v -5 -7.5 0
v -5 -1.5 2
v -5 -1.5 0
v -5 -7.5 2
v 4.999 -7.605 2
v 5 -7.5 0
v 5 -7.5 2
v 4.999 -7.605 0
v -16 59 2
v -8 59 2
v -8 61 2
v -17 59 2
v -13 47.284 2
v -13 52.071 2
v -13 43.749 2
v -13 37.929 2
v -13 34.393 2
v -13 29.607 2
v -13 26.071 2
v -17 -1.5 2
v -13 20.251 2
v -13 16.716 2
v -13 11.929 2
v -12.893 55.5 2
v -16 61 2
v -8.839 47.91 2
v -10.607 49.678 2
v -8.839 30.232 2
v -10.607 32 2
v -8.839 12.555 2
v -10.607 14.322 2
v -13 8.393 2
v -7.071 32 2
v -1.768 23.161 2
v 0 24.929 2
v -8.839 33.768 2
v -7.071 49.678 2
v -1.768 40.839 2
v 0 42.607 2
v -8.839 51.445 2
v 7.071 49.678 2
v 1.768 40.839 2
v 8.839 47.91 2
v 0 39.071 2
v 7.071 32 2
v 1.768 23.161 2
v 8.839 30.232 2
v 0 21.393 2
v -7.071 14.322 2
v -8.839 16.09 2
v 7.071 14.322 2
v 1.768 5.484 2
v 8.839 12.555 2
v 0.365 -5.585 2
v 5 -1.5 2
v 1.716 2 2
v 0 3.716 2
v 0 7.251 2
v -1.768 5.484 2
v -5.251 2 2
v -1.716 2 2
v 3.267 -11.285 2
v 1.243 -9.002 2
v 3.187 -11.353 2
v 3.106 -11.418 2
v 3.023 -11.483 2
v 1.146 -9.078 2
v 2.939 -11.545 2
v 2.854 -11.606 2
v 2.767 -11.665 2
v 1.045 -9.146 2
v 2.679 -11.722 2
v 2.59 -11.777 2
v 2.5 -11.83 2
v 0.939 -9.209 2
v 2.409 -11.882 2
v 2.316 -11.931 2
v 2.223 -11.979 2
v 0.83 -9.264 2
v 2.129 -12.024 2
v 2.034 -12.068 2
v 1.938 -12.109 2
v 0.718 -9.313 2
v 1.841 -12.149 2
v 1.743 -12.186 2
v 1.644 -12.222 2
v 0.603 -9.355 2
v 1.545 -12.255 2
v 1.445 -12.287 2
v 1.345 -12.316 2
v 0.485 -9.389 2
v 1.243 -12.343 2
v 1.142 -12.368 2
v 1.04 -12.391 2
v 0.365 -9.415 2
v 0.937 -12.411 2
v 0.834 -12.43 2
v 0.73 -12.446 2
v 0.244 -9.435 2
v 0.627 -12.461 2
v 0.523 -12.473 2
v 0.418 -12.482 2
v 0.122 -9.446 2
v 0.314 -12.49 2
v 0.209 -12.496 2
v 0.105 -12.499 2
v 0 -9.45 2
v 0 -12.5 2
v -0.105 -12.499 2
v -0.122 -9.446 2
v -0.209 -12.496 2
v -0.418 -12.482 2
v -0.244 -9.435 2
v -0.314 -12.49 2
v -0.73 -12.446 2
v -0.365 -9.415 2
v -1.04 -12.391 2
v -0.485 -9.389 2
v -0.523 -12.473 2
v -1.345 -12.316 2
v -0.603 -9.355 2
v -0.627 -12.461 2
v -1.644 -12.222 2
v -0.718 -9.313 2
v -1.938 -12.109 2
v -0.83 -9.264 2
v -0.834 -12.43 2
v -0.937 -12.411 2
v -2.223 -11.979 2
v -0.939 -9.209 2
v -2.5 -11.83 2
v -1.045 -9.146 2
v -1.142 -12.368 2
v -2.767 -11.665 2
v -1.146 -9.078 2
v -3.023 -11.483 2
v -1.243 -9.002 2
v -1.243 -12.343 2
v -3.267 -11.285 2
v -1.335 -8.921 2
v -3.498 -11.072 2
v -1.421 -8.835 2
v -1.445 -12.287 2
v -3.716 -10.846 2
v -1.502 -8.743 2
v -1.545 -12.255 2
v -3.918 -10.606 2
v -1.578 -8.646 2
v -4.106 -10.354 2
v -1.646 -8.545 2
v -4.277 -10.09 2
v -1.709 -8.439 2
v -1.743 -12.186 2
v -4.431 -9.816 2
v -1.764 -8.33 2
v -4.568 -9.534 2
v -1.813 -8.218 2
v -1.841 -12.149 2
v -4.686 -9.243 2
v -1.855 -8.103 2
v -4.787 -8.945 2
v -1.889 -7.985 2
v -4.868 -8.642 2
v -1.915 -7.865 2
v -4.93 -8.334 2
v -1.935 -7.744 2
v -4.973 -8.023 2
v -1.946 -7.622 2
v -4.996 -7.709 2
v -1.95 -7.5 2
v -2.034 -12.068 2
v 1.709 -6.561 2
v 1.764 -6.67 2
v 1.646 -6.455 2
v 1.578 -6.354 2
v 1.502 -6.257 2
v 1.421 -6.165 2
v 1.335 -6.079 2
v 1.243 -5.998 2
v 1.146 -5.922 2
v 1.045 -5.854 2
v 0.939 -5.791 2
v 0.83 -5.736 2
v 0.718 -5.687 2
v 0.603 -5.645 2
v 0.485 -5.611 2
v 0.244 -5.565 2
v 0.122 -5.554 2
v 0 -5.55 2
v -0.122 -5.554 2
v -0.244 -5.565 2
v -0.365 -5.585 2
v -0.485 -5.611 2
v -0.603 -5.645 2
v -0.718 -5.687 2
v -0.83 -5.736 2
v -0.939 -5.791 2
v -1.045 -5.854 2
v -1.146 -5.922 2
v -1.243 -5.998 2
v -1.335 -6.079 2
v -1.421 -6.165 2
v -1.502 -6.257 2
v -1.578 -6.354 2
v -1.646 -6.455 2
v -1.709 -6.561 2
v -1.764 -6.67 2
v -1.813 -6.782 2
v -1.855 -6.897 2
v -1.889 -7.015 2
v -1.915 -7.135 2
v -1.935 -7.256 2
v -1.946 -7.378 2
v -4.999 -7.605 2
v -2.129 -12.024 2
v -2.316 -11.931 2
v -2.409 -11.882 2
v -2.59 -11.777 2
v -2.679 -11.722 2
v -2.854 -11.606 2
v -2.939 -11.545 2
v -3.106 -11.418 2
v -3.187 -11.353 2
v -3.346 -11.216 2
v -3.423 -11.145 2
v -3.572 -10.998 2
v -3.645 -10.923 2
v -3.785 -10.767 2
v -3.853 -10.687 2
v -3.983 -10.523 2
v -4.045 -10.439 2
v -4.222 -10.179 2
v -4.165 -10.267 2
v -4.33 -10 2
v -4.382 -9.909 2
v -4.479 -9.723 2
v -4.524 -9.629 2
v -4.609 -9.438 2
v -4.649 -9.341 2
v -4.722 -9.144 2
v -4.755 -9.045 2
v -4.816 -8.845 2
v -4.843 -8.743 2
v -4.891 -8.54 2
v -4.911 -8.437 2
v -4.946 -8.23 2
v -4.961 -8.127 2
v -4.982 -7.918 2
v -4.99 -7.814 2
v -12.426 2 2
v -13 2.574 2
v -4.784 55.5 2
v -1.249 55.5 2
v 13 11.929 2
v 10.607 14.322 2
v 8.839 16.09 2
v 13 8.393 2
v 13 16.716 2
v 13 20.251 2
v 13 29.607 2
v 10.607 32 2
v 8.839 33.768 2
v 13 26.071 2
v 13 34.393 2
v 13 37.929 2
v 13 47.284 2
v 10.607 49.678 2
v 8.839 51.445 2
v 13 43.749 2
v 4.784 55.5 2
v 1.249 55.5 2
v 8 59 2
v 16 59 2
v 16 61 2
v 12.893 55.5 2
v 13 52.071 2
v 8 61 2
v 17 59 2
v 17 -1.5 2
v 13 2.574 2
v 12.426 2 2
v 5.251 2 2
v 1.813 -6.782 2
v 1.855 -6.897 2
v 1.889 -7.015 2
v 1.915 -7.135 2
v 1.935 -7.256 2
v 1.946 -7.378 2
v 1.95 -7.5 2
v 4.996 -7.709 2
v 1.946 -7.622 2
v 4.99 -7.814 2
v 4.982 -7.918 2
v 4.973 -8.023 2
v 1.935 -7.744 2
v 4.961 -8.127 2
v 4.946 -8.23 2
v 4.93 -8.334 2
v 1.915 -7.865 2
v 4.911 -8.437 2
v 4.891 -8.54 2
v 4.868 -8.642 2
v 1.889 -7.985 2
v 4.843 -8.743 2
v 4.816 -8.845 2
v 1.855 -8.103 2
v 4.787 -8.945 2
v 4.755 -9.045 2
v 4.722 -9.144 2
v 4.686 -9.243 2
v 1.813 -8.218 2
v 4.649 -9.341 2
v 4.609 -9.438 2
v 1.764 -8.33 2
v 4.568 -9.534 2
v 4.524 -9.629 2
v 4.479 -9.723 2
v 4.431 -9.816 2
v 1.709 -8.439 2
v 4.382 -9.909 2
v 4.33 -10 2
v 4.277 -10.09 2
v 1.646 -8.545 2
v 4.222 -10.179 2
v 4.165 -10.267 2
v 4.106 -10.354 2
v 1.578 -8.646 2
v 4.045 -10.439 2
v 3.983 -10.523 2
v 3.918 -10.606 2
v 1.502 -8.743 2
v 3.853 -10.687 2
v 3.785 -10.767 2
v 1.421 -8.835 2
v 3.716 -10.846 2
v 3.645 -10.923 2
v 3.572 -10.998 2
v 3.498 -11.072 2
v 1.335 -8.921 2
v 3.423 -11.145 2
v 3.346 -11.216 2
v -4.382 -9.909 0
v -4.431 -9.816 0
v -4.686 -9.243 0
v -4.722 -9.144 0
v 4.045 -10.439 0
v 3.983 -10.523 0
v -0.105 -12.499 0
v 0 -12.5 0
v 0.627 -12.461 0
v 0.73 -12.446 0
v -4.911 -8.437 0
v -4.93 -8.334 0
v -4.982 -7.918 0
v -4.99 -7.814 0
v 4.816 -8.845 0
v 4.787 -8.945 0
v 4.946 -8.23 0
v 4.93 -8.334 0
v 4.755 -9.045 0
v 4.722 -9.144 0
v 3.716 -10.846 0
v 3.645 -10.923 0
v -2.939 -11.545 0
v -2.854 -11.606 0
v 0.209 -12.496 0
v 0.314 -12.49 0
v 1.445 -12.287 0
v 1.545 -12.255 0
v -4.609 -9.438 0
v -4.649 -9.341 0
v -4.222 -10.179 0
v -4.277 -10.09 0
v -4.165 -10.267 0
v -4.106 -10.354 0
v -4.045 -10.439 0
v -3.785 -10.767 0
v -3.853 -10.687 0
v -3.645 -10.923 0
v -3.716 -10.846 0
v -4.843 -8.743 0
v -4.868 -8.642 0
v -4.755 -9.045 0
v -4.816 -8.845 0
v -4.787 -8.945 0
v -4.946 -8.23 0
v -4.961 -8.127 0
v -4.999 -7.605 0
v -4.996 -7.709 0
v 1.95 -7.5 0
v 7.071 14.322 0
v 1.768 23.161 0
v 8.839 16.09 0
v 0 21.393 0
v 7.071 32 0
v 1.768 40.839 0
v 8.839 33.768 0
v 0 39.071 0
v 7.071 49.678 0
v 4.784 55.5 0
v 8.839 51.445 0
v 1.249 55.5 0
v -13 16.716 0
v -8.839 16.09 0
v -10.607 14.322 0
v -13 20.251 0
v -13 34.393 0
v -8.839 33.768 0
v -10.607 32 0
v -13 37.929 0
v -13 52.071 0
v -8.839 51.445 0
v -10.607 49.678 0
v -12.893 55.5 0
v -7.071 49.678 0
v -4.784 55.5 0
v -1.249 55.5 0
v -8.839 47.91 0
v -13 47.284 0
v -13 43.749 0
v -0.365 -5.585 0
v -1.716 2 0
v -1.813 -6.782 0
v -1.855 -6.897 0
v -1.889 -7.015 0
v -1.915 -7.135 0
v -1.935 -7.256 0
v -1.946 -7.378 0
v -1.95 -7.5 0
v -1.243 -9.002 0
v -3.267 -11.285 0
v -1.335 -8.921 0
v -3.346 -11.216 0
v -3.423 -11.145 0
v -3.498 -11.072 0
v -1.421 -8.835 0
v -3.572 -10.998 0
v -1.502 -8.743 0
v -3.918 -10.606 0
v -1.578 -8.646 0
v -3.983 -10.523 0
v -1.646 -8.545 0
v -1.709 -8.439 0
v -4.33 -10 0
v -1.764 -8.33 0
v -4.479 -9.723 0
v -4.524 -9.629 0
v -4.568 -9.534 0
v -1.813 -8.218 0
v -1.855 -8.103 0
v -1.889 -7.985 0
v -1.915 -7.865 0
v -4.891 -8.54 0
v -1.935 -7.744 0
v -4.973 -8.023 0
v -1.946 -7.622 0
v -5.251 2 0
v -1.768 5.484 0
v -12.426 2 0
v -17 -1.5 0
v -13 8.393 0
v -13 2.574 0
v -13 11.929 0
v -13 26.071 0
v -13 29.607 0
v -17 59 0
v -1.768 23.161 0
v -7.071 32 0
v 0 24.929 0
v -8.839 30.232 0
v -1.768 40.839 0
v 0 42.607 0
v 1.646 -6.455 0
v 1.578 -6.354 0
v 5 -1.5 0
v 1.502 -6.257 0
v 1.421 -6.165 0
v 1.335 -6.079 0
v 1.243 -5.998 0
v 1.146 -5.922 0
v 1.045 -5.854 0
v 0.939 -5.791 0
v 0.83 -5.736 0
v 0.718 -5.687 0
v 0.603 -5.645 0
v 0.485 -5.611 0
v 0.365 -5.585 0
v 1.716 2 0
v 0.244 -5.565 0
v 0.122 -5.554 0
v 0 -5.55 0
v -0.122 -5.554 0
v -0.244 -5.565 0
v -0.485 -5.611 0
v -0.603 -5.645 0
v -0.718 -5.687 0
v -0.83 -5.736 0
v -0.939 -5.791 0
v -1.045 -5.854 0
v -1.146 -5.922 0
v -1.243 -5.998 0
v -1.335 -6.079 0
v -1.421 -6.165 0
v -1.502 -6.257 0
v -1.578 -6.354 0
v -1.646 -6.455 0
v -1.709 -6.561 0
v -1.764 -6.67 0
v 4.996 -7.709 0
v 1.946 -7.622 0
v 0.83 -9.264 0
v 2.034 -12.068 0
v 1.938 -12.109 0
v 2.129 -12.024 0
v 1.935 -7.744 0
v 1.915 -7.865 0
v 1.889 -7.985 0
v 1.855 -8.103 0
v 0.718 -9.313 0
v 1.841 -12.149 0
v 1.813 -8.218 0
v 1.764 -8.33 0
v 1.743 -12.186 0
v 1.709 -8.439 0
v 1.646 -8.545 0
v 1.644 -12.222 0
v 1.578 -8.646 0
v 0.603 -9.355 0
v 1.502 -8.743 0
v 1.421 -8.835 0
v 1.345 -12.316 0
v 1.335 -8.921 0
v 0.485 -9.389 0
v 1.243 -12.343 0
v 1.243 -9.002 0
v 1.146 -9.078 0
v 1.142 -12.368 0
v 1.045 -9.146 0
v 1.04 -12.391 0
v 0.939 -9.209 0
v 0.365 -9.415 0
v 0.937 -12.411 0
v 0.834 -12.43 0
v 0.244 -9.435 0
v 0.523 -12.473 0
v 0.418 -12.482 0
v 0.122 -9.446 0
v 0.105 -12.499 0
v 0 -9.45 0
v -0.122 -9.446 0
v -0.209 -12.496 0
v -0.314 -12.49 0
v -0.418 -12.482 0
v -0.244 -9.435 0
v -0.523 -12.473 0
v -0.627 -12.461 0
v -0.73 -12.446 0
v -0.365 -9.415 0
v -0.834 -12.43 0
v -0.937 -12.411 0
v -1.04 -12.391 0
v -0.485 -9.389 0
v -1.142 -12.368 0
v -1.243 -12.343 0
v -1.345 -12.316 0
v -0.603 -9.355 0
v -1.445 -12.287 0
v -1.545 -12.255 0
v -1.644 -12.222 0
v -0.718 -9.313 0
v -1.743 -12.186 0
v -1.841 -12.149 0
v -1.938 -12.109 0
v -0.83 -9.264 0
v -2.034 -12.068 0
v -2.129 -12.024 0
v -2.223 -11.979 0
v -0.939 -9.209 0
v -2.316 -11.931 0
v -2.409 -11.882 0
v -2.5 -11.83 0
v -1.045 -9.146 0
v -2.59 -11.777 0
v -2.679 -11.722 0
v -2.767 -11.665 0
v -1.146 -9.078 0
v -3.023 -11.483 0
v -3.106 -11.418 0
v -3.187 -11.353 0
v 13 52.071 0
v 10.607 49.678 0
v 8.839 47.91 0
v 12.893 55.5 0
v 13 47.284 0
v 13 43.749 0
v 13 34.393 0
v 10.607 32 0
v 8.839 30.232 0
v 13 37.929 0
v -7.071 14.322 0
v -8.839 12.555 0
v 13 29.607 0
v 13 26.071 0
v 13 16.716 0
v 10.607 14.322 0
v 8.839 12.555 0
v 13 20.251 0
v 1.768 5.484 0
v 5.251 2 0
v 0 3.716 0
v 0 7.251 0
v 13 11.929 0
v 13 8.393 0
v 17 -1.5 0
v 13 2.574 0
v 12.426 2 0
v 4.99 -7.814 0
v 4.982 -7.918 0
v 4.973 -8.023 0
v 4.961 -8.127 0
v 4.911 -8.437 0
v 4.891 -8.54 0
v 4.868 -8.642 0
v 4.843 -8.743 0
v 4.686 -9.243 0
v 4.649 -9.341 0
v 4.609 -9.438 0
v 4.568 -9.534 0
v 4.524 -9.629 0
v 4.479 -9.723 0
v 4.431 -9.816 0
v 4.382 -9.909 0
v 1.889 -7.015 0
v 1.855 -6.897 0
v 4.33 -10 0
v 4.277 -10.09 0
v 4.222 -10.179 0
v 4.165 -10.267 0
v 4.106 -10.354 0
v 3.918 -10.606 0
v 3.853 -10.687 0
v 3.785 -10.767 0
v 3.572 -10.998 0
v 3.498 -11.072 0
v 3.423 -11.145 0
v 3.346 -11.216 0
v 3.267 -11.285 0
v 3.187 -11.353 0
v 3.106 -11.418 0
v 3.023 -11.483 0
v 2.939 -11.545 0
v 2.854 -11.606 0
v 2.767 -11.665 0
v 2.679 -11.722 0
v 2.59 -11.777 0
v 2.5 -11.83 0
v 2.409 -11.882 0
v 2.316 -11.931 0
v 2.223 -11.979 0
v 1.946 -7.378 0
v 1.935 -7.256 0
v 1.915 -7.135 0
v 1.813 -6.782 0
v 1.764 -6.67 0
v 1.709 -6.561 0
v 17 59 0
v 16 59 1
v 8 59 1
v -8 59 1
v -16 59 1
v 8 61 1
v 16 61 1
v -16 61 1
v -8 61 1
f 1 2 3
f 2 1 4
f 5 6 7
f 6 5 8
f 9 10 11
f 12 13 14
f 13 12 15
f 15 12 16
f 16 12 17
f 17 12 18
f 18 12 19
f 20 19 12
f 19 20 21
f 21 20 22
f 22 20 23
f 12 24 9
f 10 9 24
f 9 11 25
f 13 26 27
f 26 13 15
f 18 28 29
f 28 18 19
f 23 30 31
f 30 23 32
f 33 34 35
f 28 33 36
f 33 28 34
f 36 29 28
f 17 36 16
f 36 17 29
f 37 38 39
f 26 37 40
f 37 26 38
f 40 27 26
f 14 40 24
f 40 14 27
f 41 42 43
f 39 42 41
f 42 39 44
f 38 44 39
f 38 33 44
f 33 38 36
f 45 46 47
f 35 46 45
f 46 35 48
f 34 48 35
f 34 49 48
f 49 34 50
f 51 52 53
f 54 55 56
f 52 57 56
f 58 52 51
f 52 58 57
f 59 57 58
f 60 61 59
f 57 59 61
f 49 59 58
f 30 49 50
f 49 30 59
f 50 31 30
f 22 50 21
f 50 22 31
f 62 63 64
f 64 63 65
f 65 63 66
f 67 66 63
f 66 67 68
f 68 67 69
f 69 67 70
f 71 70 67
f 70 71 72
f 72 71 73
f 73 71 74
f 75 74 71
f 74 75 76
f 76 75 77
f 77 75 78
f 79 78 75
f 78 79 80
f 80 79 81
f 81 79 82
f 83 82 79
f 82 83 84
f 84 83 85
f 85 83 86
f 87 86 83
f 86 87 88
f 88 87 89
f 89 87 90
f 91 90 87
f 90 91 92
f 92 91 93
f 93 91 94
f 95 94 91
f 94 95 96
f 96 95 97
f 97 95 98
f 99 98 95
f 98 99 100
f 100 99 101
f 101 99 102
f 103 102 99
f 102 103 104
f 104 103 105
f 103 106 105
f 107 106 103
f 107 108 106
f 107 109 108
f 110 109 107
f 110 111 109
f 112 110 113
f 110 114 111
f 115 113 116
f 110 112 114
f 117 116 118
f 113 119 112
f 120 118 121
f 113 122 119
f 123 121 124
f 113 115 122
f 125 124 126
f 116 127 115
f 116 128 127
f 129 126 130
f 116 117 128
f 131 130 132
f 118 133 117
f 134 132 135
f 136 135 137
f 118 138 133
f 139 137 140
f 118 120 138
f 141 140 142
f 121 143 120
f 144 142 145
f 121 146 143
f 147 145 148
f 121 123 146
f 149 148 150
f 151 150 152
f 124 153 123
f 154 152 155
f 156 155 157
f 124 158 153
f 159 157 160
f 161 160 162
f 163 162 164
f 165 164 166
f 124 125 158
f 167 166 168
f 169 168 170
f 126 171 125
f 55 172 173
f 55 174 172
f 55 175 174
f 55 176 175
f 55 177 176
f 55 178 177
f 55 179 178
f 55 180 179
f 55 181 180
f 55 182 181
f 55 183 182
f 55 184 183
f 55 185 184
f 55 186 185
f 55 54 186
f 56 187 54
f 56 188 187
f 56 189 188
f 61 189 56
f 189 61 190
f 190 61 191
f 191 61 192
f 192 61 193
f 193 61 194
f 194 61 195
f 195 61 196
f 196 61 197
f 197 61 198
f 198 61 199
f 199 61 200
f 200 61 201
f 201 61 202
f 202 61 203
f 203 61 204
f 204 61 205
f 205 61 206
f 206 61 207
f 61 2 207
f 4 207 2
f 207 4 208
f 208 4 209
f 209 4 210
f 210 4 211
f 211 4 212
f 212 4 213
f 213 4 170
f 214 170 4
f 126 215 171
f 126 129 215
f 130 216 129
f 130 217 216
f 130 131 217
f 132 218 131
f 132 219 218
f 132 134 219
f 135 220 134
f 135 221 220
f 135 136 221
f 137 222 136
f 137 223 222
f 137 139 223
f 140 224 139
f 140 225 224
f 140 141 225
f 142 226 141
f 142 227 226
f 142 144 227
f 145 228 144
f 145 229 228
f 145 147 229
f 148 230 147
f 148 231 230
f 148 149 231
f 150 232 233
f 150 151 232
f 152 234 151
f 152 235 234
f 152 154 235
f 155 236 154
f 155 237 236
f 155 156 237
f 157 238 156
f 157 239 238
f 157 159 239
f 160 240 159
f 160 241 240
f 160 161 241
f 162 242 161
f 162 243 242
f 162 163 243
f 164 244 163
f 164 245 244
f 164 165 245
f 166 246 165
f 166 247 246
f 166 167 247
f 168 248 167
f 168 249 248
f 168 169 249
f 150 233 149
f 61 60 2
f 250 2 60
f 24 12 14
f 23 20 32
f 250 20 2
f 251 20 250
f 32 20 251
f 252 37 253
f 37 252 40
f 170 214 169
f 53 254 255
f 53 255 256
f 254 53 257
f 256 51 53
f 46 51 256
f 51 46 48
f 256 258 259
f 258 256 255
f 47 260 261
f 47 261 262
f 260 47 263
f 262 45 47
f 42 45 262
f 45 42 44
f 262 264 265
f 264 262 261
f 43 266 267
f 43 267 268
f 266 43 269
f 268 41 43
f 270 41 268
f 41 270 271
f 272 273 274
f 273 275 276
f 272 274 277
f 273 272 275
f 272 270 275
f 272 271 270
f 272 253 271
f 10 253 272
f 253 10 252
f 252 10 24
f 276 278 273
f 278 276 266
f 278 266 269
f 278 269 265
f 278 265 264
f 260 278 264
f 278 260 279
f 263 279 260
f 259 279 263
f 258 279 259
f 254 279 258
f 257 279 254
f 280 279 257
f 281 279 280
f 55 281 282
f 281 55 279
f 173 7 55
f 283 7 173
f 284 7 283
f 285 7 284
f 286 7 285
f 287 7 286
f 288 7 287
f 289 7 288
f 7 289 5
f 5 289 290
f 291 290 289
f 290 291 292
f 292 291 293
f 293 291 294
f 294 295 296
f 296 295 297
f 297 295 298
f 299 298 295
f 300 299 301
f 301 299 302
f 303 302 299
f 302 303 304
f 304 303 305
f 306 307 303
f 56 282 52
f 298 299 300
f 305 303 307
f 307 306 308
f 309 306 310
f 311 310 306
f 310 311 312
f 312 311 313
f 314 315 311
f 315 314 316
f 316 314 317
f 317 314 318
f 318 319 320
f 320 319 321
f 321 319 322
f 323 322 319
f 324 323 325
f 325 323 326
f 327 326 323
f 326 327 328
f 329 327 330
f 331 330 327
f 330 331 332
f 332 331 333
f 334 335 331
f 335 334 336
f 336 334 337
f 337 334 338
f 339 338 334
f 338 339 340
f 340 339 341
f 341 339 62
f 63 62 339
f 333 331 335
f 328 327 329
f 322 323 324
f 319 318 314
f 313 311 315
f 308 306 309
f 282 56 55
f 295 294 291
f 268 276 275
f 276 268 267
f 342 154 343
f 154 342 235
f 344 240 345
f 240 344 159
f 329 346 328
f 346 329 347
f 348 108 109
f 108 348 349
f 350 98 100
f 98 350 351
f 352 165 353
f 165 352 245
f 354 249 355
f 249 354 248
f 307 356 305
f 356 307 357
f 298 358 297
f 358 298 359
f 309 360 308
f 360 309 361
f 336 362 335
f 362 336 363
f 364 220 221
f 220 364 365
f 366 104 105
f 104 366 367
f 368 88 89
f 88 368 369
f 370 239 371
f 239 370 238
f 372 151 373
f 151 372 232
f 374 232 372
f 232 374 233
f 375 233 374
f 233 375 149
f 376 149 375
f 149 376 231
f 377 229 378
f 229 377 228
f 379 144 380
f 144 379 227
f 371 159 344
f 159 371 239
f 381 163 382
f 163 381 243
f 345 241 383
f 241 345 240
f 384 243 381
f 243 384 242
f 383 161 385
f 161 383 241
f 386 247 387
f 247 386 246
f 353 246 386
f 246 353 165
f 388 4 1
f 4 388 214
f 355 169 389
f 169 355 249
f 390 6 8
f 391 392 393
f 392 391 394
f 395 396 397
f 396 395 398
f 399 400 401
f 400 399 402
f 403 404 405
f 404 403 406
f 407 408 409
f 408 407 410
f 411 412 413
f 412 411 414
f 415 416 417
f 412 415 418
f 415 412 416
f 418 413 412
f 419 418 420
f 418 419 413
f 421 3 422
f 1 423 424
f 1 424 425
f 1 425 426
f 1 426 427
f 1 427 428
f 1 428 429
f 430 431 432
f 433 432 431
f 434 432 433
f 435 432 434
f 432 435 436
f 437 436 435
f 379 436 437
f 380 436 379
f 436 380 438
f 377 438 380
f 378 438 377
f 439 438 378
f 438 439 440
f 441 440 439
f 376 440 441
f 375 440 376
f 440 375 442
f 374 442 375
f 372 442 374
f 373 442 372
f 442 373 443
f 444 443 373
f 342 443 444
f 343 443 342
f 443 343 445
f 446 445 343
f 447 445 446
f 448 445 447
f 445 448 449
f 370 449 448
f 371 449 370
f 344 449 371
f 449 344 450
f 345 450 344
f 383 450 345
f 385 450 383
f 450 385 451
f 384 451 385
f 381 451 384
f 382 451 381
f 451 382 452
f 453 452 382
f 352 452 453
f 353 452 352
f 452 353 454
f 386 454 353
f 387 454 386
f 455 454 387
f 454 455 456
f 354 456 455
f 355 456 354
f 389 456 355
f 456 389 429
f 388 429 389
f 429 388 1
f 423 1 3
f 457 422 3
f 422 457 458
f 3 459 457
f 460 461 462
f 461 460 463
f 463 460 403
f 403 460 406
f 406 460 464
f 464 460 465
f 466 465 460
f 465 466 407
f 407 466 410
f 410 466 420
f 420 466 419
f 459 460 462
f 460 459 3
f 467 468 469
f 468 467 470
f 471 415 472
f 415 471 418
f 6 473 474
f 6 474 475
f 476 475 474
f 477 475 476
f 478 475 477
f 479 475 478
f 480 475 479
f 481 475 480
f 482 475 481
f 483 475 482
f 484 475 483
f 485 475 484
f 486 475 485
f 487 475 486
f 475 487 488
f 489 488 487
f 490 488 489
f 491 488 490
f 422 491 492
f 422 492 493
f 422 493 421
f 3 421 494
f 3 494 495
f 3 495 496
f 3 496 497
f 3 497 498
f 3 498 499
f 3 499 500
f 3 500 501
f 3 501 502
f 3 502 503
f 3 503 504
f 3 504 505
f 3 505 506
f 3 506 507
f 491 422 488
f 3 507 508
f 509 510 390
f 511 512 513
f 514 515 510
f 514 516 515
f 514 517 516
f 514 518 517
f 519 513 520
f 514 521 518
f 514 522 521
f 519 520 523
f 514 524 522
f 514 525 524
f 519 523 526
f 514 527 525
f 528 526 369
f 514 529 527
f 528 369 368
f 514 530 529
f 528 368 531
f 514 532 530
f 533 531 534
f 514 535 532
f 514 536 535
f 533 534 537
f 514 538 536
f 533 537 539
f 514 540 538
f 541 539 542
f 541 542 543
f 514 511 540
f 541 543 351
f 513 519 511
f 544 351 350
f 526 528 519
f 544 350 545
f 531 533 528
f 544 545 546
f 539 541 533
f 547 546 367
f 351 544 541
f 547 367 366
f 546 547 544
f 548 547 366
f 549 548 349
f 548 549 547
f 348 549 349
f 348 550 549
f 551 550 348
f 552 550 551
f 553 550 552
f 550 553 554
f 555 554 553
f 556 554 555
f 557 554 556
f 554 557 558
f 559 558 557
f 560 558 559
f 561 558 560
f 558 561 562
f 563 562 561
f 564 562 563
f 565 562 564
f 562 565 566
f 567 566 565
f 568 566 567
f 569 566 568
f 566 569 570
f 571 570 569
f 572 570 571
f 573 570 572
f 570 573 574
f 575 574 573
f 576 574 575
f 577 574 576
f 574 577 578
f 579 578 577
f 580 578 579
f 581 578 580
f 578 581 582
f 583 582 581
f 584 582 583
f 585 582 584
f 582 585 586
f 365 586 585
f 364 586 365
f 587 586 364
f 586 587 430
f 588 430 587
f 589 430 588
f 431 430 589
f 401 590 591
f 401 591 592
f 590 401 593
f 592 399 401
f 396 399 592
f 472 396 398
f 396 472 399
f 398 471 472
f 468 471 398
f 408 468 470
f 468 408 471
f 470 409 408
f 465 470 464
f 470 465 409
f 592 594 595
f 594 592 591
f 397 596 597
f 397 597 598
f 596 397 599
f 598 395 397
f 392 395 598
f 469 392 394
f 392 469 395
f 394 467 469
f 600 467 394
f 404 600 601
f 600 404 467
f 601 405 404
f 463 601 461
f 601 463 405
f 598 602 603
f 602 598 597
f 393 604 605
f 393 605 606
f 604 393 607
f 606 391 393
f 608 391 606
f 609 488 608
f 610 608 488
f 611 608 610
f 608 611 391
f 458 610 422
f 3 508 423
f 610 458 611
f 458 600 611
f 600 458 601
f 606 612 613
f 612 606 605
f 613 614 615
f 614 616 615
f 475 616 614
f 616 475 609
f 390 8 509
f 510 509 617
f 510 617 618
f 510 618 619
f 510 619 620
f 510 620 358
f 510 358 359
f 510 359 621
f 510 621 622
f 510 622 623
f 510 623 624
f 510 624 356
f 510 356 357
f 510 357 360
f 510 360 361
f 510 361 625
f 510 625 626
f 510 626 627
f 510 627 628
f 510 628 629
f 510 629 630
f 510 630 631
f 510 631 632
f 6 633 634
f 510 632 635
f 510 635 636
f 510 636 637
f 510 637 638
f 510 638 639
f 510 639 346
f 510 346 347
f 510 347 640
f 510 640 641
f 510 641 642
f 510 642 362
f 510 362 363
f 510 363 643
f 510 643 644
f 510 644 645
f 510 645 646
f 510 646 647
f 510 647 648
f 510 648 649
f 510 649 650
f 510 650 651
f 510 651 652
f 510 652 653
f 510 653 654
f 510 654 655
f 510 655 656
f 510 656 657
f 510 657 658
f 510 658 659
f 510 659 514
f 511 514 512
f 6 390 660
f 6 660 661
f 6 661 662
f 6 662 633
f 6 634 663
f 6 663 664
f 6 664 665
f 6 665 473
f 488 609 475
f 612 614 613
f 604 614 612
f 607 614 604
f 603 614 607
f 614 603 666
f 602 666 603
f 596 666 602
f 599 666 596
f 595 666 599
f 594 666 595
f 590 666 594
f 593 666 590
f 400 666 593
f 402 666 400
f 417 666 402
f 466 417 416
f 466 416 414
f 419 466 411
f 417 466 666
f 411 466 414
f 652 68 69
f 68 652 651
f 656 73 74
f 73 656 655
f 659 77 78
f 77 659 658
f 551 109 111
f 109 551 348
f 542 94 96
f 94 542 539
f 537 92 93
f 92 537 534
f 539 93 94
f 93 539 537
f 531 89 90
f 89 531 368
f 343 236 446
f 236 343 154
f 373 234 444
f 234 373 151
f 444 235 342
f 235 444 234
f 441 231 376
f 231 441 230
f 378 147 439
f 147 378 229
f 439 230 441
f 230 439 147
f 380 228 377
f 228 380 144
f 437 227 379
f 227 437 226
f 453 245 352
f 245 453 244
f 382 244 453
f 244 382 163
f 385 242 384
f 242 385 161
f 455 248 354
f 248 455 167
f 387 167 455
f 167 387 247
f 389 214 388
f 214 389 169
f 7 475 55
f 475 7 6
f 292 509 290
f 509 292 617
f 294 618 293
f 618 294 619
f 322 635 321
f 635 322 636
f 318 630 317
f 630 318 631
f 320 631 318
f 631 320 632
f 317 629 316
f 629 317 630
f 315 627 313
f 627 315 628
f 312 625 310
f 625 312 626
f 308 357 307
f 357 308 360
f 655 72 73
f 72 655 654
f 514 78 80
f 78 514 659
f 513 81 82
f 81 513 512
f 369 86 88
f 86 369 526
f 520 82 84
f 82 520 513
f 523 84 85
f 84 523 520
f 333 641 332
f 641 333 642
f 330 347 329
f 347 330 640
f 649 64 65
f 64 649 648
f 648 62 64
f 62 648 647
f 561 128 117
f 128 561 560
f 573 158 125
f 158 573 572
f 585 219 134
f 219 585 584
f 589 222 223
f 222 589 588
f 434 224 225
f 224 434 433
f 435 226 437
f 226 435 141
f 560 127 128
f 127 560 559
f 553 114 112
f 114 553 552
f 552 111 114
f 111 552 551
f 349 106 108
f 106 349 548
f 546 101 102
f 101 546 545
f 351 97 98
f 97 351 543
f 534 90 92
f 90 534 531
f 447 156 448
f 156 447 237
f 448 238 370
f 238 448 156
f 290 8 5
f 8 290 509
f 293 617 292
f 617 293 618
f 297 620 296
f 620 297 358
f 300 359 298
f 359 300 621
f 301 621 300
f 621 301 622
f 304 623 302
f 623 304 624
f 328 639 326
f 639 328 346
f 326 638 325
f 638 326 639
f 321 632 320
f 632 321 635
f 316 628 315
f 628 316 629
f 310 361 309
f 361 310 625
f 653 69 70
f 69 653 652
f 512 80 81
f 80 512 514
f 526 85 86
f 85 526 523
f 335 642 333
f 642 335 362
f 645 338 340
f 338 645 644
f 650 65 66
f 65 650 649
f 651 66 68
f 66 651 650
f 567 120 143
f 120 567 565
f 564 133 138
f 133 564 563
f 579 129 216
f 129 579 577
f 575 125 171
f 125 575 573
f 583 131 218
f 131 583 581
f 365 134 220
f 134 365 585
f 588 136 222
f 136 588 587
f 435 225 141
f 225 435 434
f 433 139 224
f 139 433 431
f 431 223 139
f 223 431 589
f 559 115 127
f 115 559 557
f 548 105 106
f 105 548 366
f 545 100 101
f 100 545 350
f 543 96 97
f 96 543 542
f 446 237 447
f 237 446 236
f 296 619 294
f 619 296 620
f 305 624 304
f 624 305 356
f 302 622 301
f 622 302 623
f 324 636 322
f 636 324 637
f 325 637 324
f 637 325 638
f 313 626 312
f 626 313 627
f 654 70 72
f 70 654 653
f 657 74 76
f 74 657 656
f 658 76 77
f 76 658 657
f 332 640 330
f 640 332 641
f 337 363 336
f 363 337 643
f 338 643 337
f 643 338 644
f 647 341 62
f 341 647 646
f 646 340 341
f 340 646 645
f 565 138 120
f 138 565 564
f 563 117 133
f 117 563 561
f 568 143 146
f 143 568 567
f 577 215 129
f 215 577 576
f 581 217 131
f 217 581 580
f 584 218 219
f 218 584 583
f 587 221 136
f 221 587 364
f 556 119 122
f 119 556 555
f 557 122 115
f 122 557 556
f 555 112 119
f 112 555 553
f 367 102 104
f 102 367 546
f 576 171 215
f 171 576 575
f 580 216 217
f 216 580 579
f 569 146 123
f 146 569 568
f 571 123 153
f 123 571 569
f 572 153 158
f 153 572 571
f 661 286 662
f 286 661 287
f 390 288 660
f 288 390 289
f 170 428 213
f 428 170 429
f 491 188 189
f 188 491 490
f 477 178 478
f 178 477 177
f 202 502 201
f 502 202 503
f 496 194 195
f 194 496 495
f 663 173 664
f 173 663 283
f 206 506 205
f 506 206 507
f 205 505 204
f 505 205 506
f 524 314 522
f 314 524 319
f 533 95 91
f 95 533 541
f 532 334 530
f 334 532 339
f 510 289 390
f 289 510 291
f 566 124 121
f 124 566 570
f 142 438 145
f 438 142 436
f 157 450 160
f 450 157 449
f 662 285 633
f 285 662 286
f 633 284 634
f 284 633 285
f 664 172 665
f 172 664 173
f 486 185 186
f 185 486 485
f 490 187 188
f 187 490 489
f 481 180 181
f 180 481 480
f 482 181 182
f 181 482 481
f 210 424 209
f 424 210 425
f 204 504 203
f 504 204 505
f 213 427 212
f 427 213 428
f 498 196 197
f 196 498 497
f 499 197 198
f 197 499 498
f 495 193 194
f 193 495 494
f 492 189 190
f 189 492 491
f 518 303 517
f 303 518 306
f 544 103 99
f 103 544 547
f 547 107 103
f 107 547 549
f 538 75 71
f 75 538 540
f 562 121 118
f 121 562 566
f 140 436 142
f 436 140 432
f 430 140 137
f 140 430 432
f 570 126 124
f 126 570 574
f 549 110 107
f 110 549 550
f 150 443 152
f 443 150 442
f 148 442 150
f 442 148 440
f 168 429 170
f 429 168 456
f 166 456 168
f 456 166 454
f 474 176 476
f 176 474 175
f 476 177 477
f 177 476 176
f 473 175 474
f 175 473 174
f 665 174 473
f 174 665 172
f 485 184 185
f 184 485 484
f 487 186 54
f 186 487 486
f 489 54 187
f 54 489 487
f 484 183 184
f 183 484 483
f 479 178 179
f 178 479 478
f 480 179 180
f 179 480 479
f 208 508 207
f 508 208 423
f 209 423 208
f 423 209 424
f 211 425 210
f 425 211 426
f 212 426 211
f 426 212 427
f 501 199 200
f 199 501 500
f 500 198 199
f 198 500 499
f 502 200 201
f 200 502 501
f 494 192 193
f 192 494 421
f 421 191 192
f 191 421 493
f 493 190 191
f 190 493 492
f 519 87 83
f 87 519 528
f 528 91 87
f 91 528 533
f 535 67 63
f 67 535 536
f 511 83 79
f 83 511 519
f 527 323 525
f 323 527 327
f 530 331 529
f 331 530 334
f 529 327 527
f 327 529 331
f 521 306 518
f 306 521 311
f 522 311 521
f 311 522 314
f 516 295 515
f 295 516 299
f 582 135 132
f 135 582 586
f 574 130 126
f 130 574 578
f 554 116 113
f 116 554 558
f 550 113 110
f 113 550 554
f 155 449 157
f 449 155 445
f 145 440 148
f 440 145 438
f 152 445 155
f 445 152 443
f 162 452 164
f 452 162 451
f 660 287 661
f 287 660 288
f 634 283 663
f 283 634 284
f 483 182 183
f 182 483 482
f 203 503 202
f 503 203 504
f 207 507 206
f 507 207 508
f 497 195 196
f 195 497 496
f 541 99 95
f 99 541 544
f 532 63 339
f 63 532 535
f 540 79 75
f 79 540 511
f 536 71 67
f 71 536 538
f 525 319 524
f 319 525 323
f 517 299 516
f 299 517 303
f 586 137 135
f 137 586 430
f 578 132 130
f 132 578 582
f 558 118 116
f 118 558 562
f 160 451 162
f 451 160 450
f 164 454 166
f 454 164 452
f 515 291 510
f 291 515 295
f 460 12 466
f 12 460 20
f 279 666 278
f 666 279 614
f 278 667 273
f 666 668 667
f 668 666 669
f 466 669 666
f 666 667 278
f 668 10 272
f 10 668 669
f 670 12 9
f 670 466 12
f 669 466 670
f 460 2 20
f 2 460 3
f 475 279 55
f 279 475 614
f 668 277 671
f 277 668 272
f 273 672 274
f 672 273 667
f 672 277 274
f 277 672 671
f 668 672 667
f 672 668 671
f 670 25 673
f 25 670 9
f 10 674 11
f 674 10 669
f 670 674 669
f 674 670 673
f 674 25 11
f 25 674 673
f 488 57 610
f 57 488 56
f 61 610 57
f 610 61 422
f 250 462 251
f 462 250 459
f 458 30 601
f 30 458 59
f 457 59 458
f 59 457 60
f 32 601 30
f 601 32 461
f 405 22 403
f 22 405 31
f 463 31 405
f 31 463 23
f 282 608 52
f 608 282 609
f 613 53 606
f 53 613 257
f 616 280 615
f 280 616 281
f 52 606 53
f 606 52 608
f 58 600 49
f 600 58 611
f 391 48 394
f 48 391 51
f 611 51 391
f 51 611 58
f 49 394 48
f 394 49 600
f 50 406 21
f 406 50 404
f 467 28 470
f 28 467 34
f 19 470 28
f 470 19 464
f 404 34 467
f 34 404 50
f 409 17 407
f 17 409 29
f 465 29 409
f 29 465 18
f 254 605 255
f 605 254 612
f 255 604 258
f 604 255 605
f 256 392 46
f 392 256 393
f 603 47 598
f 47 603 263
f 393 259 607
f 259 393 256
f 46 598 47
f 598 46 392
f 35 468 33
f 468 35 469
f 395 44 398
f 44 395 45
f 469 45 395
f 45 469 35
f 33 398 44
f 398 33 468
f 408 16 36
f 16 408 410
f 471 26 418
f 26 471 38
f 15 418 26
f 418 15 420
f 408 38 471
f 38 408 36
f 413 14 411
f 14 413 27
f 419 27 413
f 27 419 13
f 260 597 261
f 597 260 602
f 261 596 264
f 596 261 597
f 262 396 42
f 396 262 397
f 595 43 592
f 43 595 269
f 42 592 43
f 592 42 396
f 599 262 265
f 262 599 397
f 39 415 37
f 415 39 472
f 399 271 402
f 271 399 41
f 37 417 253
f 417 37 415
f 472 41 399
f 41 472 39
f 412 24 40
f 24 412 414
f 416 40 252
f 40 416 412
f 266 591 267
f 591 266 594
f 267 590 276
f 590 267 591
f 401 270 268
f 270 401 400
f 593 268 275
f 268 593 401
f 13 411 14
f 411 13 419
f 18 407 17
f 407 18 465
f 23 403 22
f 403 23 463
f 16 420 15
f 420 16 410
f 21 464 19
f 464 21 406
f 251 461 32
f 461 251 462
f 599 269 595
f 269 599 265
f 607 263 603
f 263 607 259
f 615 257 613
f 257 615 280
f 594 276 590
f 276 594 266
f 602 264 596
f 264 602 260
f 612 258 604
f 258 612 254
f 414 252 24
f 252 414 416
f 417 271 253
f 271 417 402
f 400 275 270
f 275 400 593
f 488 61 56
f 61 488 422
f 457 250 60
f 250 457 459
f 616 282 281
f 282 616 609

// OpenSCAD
// file: Holes.scad
$fn = 100;
high_of_hole = 1;

//hole_for_base (high_of_hole);
//hole_for_screw_M2 (high_of_hole);
//hole_for_screw_M2_5 (high_of_hole);
//hole_for_screw_M3 (high_of_hole);
//hole_for_shaft (high_of_hole);

module hole_for_base (high_of_hole) {
    cylinder (h = high_of_hole, d = 8);
}

module hole_for_screw_M1_2 (high_of_hole) {
    cylinder (h = high_of_hole, d = 1.6);
}

module hole_for_screw_M2 (high_of_hole) {
    cylinder (h = high_of_hole, d = 2.8);
}

module hole_for_screw_M2_5 (high_of_hole) {
    cylinder (h = high_of_hole, d = 3.3);
}

module hole_for_screw_M3 (high_of_hole) {
    cylinder (h = high_of_hole, d = 3.9);
}

module hole_for_shaft (high_of_hole) {
    cylinder (h = high_of_hole, d = 4.9);
}
// main file
use <Holes.scad>;

$fn = 300;
batteries_distance = -32;
chassis_diameter = 92.5;
side = 10;
spacing = 2.5;

wicket_for_batteries (batteries_distance, side, spacing);

module wicket_for_batteries (batteries_distance, side, spacing) {
    color ([1, 1, 0, 1]) {
        difference () {
            union () {
                translate ([-17, -1.5, 0]) {
                    cube ([34, 60.5, 2]);
                }
                translate ([8, 58.5, 1]) {
                    cube ([8, 2.5, 1]);
                }
                translate ([-16, 58.5, 1]) {
                    cube ([8, 2.5, 1]);
                }
                difference () {
                    hull () {
                        translate ([0, -7.5, 0]) {
                            cylinder (h = 2, d = 10);
                        }
                        translate ([-5, 0, 0]) {
                            cube ([10, 2, 2]);
                        }
                    }
                    translate ([0, -7.5, -0.5]) {
                        hole_for_screw_M3 (3);
                    }
                }
            }
            mash (batteries_distance, side, spacing);
        }
    }
}

module mash (batteries_distance, side, spacing) {
    n = ceil((chassis_diameter / 2 - side / 2 - spacing) / 
             (side + spacing));
    shift = side / 2 + (side + spacing) * n;                 
    
    difference () {
        translate ([0, -batteries_distance, 0]) {
            rotate ([0, 0, 45]) {
                translate ([-shift, -shift, -0.5]) {
                    for (i = [0: 1: n * 2]) {
                        for (j = [0: 1: n * 2]) {
                            translate ([i * (side + spacing),
                                        j * (side + spacing), 0]) {
                                cube ([side, side, 5]);
                            }
                        }
                    }
                }
            }
        }
//protect_of_gripping
        hull () {
            translate ([0, -7.5, 0]) {
                cylinder (h = 2, d = 10);
            }
            translate ([-5, 0, 0]) {
                cube ([10, 2, 2]);
            }
        }
//protect_of_frame
        difference () {
            translate ([-17.5, -2, -0.5]) {
                cube ([35, 65, 3]);
            }
            translate ([-13, 2, -1]) {
                cube ([26, 53.5, 4]);
            }
        }
    }
}
